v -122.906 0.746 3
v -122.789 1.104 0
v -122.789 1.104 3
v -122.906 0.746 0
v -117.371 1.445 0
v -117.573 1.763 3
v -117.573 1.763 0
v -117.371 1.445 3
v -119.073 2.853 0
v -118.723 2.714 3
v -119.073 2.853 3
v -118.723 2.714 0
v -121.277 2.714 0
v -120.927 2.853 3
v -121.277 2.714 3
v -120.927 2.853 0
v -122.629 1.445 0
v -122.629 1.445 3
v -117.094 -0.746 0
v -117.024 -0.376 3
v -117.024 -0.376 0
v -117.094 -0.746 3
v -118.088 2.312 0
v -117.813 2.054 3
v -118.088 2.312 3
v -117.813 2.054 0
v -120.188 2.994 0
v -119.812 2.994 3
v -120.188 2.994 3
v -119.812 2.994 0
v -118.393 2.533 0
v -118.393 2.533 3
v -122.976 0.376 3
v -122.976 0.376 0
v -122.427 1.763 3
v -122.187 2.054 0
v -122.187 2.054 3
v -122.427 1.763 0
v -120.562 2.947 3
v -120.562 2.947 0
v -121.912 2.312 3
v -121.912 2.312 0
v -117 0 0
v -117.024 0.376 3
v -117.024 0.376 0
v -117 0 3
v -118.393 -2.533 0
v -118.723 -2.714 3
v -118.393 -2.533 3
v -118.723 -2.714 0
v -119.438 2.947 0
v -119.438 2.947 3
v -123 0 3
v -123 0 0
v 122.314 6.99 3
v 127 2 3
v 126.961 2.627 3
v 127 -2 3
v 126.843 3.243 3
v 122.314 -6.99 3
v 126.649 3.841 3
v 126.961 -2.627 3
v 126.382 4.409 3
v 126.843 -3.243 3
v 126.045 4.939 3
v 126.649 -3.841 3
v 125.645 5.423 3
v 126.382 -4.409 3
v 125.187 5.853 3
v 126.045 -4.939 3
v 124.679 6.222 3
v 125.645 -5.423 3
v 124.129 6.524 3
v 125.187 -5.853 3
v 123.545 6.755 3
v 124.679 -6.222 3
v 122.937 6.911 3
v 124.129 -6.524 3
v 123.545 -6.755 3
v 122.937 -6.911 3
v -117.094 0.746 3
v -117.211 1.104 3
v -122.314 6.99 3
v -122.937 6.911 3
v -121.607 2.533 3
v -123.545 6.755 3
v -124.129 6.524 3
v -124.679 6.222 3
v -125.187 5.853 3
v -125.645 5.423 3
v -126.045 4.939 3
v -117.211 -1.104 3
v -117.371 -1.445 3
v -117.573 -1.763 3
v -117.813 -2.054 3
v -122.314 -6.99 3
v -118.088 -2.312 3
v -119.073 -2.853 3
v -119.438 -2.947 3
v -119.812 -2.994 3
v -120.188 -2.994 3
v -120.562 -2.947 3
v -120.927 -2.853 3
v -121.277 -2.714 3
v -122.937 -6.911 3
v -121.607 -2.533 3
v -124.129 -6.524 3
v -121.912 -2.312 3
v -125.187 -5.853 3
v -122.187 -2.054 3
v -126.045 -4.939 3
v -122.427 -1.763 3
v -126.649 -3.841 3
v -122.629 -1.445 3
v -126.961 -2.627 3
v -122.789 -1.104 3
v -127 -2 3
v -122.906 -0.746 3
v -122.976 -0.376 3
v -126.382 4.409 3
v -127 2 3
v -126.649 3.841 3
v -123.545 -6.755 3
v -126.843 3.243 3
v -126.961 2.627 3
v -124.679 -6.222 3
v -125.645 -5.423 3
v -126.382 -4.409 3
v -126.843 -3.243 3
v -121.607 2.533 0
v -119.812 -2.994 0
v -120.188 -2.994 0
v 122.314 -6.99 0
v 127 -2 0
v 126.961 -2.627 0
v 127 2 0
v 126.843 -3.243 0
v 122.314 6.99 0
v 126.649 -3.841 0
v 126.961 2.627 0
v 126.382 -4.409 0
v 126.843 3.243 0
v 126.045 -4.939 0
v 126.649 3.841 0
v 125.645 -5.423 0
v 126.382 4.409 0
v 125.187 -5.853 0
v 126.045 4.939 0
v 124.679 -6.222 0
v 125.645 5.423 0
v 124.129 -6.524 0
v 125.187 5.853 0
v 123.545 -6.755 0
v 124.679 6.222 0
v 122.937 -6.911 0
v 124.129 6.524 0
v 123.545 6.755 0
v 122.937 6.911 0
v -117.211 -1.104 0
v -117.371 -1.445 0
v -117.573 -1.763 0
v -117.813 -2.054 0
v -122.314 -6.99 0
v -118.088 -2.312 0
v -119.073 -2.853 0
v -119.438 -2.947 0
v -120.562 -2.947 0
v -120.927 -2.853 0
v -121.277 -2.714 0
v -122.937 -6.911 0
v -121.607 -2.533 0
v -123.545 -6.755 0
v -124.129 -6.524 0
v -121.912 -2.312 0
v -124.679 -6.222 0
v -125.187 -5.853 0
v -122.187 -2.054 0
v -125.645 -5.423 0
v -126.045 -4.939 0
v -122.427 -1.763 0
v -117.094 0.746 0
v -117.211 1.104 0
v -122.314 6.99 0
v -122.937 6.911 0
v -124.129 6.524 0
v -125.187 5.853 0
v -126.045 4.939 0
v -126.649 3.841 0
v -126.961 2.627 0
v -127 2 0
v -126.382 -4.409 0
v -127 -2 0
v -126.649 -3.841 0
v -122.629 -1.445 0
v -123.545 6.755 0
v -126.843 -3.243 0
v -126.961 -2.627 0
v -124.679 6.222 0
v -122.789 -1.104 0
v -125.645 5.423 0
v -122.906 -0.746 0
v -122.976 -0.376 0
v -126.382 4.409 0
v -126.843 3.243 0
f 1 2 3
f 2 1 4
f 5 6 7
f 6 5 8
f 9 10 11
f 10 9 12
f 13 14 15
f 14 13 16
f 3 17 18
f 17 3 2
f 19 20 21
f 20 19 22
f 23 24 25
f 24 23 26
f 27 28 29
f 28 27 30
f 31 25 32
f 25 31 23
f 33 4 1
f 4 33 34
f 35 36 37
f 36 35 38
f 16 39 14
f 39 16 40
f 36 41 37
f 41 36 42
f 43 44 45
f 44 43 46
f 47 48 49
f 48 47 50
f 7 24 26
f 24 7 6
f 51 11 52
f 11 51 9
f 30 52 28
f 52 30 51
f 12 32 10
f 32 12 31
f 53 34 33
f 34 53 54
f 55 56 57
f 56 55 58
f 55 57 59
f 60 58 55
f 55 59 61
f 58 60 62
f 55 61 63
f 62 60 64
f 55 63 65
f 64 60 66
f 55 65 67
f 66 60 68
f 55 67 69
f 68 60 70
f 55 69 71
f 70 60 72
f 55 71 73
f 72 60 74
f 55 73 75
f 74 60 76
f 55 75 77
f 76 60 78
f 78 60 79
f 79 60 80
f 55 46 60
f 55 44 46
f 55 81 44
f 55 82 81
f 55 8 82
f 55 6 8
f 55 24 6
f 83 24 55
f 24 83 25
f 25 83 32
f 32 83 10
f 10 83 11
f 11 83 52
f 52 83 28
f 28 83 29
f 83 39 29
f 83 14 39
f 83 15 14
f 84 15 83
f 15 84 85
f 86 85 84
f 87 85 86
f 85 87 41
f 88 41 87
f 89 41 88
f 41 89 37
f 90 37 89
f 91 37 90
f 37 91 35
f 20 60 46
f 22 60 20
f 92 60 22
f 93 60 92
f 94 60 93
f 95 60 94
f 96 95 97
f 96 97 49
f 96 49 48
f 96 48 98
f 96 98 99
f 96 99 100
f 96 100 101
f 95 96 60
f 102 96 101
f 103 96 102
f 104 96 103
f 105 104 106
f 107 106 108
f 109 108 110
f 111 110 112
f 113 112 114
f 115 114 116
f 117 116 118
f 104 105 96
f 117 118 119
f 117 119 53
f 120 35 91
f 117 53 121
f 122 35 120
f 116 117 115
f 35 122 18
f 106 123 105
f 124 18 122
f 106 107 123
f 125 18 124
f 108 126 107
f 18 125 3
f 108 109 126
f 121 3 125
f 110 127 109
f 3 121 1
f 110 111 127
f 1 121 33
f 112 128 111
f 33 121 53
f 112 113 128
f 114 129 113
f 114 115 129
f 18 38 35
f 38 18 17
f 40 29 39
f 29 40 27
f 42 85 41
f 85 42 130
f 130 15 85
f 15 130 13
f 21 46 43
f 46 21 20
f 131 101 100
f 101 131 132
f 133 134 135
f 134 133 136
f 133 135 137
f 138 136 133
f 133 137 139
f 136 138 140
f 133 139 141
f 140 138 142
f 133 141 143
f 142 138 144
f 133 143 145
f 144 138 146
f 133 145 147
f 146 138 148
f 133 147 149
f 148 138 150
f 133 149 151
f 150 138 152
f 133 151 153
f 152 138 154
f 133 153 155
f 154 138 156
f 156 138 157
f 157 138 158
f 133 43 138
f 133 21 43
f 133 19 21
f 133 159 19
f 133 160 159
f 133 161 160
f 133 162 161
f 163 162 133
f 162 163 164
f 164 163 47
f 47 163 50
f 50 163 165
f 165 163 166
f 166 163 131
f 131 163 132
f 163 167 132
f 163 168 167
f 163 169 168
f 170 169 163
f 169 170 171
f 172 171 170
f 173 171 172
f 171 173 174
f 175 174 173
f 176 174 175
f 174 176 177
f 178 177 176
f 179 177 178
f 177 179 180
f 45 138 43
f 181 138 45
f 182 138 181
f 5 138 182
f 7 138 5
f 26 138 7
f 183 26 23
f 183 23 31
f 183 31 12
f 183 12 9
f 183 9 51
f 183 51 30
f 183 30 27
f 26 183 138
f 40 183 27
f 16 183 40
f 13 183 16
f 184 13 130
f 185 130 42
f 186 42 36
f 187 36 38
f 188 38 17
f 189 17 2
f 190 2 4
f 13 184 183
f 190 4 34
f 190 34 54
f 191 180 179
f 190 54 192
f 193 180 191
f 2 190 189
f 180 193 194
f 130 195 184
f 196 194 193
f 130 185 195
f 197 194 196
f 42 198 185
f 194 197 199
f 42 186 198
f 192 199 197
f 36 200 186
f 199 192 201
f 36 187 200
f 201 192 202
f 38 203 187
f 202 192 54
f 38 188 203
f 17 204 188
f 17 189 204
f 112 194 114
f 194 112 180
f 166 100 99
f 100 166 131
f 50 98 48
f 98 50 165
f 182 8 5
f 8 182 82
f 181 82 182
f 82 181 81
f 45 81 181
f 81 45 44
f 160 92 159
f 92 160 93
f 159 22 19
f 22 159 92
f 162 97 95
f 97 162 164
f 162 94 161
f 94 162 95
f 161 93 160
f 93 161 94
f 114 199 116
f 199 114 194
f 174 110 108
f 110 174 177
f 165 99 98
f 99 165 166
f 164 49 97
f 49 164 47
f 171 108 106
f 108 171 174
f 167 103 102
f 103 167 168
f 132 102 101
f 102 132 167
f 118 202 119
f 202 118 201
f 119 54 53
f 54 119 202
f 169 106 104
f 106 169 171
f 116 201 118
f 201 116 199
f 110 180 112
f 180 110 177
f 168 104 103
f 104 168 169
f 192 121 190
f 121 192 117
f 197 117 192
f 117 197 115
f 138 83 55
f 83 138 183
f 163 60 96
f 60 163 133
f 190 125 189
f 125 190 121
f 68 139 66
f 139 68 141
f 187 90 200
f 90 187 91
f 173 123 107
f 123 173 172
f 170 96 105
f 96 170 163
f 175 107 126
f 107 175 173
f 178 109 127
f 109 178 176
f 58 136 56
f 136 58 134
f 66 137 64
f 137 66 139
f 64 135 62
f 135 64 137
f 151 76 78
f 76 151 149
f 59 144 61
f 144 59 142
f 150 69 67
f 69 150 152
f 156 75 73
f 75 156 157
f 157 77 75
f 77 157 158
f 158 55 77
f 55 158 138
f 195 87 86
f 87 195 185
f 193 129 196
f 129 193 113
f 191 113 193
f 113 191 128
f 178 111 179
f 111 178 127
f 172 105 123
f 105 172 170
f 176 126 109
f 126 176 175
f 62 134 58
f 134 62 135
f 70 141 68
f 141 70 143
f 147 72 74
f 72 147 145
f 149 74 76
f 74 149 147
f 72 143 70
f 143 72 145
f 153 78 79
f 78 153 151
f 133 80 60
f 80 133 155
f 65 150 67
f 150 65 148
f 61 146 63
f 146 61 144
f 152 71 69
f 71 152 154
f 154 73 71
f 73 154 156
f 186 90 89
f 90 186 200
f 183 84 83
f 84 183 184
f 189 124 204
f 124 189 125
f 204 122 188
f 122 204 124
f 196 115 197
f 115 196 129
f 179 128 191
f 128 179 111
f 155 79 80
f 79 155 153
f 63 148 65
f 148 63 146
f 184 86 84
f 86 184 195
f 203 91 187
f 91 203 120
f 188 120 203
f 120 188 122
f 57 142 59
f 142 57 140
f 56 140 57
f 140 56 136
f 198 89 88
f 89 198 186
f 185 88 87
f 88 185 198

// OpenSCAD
$fn = 50;


difference() {
	union() {
		hull() {
			translate(v = [-122.0000000000, 2.0000000000, 0]) {
				cylinder(h = 3, r = 5);
			}
			translate(v = [122.0000000000, 2.0000000000, 0]) {
				cylinder(h = 3, r = 5);
			}
			translate(v = [-122.0000000000, -2.0000000000, 0]) {
				cylinder(h = 3, r = 5);
			}
			translate(v = [122.0000000000, -2.0000000000, 0]) {
				cylinder(h = 3, r = 5);
			}
		}
	}
	union() {
		translate(v = [-120.0000000000, 0.0000000000, 0]) {
			cylinder(h = 3, r = 3.0000000000);
		}
		translate(v = [-120.0000000000, 0.0000000000, 0]) {
			cylinder(h = 3, r = 1.5000000000);
		}
		translate(v = [-120.0000000000, 0.0000000000, 0]) {
			cylinder(h = 3, r = 1.5000000000);
		}
		translate(v = [-120.0000000000, 0.0000000000, 0]) {
			cylinder(h = 3, r = 1.5000000000);
		}
	}
}
